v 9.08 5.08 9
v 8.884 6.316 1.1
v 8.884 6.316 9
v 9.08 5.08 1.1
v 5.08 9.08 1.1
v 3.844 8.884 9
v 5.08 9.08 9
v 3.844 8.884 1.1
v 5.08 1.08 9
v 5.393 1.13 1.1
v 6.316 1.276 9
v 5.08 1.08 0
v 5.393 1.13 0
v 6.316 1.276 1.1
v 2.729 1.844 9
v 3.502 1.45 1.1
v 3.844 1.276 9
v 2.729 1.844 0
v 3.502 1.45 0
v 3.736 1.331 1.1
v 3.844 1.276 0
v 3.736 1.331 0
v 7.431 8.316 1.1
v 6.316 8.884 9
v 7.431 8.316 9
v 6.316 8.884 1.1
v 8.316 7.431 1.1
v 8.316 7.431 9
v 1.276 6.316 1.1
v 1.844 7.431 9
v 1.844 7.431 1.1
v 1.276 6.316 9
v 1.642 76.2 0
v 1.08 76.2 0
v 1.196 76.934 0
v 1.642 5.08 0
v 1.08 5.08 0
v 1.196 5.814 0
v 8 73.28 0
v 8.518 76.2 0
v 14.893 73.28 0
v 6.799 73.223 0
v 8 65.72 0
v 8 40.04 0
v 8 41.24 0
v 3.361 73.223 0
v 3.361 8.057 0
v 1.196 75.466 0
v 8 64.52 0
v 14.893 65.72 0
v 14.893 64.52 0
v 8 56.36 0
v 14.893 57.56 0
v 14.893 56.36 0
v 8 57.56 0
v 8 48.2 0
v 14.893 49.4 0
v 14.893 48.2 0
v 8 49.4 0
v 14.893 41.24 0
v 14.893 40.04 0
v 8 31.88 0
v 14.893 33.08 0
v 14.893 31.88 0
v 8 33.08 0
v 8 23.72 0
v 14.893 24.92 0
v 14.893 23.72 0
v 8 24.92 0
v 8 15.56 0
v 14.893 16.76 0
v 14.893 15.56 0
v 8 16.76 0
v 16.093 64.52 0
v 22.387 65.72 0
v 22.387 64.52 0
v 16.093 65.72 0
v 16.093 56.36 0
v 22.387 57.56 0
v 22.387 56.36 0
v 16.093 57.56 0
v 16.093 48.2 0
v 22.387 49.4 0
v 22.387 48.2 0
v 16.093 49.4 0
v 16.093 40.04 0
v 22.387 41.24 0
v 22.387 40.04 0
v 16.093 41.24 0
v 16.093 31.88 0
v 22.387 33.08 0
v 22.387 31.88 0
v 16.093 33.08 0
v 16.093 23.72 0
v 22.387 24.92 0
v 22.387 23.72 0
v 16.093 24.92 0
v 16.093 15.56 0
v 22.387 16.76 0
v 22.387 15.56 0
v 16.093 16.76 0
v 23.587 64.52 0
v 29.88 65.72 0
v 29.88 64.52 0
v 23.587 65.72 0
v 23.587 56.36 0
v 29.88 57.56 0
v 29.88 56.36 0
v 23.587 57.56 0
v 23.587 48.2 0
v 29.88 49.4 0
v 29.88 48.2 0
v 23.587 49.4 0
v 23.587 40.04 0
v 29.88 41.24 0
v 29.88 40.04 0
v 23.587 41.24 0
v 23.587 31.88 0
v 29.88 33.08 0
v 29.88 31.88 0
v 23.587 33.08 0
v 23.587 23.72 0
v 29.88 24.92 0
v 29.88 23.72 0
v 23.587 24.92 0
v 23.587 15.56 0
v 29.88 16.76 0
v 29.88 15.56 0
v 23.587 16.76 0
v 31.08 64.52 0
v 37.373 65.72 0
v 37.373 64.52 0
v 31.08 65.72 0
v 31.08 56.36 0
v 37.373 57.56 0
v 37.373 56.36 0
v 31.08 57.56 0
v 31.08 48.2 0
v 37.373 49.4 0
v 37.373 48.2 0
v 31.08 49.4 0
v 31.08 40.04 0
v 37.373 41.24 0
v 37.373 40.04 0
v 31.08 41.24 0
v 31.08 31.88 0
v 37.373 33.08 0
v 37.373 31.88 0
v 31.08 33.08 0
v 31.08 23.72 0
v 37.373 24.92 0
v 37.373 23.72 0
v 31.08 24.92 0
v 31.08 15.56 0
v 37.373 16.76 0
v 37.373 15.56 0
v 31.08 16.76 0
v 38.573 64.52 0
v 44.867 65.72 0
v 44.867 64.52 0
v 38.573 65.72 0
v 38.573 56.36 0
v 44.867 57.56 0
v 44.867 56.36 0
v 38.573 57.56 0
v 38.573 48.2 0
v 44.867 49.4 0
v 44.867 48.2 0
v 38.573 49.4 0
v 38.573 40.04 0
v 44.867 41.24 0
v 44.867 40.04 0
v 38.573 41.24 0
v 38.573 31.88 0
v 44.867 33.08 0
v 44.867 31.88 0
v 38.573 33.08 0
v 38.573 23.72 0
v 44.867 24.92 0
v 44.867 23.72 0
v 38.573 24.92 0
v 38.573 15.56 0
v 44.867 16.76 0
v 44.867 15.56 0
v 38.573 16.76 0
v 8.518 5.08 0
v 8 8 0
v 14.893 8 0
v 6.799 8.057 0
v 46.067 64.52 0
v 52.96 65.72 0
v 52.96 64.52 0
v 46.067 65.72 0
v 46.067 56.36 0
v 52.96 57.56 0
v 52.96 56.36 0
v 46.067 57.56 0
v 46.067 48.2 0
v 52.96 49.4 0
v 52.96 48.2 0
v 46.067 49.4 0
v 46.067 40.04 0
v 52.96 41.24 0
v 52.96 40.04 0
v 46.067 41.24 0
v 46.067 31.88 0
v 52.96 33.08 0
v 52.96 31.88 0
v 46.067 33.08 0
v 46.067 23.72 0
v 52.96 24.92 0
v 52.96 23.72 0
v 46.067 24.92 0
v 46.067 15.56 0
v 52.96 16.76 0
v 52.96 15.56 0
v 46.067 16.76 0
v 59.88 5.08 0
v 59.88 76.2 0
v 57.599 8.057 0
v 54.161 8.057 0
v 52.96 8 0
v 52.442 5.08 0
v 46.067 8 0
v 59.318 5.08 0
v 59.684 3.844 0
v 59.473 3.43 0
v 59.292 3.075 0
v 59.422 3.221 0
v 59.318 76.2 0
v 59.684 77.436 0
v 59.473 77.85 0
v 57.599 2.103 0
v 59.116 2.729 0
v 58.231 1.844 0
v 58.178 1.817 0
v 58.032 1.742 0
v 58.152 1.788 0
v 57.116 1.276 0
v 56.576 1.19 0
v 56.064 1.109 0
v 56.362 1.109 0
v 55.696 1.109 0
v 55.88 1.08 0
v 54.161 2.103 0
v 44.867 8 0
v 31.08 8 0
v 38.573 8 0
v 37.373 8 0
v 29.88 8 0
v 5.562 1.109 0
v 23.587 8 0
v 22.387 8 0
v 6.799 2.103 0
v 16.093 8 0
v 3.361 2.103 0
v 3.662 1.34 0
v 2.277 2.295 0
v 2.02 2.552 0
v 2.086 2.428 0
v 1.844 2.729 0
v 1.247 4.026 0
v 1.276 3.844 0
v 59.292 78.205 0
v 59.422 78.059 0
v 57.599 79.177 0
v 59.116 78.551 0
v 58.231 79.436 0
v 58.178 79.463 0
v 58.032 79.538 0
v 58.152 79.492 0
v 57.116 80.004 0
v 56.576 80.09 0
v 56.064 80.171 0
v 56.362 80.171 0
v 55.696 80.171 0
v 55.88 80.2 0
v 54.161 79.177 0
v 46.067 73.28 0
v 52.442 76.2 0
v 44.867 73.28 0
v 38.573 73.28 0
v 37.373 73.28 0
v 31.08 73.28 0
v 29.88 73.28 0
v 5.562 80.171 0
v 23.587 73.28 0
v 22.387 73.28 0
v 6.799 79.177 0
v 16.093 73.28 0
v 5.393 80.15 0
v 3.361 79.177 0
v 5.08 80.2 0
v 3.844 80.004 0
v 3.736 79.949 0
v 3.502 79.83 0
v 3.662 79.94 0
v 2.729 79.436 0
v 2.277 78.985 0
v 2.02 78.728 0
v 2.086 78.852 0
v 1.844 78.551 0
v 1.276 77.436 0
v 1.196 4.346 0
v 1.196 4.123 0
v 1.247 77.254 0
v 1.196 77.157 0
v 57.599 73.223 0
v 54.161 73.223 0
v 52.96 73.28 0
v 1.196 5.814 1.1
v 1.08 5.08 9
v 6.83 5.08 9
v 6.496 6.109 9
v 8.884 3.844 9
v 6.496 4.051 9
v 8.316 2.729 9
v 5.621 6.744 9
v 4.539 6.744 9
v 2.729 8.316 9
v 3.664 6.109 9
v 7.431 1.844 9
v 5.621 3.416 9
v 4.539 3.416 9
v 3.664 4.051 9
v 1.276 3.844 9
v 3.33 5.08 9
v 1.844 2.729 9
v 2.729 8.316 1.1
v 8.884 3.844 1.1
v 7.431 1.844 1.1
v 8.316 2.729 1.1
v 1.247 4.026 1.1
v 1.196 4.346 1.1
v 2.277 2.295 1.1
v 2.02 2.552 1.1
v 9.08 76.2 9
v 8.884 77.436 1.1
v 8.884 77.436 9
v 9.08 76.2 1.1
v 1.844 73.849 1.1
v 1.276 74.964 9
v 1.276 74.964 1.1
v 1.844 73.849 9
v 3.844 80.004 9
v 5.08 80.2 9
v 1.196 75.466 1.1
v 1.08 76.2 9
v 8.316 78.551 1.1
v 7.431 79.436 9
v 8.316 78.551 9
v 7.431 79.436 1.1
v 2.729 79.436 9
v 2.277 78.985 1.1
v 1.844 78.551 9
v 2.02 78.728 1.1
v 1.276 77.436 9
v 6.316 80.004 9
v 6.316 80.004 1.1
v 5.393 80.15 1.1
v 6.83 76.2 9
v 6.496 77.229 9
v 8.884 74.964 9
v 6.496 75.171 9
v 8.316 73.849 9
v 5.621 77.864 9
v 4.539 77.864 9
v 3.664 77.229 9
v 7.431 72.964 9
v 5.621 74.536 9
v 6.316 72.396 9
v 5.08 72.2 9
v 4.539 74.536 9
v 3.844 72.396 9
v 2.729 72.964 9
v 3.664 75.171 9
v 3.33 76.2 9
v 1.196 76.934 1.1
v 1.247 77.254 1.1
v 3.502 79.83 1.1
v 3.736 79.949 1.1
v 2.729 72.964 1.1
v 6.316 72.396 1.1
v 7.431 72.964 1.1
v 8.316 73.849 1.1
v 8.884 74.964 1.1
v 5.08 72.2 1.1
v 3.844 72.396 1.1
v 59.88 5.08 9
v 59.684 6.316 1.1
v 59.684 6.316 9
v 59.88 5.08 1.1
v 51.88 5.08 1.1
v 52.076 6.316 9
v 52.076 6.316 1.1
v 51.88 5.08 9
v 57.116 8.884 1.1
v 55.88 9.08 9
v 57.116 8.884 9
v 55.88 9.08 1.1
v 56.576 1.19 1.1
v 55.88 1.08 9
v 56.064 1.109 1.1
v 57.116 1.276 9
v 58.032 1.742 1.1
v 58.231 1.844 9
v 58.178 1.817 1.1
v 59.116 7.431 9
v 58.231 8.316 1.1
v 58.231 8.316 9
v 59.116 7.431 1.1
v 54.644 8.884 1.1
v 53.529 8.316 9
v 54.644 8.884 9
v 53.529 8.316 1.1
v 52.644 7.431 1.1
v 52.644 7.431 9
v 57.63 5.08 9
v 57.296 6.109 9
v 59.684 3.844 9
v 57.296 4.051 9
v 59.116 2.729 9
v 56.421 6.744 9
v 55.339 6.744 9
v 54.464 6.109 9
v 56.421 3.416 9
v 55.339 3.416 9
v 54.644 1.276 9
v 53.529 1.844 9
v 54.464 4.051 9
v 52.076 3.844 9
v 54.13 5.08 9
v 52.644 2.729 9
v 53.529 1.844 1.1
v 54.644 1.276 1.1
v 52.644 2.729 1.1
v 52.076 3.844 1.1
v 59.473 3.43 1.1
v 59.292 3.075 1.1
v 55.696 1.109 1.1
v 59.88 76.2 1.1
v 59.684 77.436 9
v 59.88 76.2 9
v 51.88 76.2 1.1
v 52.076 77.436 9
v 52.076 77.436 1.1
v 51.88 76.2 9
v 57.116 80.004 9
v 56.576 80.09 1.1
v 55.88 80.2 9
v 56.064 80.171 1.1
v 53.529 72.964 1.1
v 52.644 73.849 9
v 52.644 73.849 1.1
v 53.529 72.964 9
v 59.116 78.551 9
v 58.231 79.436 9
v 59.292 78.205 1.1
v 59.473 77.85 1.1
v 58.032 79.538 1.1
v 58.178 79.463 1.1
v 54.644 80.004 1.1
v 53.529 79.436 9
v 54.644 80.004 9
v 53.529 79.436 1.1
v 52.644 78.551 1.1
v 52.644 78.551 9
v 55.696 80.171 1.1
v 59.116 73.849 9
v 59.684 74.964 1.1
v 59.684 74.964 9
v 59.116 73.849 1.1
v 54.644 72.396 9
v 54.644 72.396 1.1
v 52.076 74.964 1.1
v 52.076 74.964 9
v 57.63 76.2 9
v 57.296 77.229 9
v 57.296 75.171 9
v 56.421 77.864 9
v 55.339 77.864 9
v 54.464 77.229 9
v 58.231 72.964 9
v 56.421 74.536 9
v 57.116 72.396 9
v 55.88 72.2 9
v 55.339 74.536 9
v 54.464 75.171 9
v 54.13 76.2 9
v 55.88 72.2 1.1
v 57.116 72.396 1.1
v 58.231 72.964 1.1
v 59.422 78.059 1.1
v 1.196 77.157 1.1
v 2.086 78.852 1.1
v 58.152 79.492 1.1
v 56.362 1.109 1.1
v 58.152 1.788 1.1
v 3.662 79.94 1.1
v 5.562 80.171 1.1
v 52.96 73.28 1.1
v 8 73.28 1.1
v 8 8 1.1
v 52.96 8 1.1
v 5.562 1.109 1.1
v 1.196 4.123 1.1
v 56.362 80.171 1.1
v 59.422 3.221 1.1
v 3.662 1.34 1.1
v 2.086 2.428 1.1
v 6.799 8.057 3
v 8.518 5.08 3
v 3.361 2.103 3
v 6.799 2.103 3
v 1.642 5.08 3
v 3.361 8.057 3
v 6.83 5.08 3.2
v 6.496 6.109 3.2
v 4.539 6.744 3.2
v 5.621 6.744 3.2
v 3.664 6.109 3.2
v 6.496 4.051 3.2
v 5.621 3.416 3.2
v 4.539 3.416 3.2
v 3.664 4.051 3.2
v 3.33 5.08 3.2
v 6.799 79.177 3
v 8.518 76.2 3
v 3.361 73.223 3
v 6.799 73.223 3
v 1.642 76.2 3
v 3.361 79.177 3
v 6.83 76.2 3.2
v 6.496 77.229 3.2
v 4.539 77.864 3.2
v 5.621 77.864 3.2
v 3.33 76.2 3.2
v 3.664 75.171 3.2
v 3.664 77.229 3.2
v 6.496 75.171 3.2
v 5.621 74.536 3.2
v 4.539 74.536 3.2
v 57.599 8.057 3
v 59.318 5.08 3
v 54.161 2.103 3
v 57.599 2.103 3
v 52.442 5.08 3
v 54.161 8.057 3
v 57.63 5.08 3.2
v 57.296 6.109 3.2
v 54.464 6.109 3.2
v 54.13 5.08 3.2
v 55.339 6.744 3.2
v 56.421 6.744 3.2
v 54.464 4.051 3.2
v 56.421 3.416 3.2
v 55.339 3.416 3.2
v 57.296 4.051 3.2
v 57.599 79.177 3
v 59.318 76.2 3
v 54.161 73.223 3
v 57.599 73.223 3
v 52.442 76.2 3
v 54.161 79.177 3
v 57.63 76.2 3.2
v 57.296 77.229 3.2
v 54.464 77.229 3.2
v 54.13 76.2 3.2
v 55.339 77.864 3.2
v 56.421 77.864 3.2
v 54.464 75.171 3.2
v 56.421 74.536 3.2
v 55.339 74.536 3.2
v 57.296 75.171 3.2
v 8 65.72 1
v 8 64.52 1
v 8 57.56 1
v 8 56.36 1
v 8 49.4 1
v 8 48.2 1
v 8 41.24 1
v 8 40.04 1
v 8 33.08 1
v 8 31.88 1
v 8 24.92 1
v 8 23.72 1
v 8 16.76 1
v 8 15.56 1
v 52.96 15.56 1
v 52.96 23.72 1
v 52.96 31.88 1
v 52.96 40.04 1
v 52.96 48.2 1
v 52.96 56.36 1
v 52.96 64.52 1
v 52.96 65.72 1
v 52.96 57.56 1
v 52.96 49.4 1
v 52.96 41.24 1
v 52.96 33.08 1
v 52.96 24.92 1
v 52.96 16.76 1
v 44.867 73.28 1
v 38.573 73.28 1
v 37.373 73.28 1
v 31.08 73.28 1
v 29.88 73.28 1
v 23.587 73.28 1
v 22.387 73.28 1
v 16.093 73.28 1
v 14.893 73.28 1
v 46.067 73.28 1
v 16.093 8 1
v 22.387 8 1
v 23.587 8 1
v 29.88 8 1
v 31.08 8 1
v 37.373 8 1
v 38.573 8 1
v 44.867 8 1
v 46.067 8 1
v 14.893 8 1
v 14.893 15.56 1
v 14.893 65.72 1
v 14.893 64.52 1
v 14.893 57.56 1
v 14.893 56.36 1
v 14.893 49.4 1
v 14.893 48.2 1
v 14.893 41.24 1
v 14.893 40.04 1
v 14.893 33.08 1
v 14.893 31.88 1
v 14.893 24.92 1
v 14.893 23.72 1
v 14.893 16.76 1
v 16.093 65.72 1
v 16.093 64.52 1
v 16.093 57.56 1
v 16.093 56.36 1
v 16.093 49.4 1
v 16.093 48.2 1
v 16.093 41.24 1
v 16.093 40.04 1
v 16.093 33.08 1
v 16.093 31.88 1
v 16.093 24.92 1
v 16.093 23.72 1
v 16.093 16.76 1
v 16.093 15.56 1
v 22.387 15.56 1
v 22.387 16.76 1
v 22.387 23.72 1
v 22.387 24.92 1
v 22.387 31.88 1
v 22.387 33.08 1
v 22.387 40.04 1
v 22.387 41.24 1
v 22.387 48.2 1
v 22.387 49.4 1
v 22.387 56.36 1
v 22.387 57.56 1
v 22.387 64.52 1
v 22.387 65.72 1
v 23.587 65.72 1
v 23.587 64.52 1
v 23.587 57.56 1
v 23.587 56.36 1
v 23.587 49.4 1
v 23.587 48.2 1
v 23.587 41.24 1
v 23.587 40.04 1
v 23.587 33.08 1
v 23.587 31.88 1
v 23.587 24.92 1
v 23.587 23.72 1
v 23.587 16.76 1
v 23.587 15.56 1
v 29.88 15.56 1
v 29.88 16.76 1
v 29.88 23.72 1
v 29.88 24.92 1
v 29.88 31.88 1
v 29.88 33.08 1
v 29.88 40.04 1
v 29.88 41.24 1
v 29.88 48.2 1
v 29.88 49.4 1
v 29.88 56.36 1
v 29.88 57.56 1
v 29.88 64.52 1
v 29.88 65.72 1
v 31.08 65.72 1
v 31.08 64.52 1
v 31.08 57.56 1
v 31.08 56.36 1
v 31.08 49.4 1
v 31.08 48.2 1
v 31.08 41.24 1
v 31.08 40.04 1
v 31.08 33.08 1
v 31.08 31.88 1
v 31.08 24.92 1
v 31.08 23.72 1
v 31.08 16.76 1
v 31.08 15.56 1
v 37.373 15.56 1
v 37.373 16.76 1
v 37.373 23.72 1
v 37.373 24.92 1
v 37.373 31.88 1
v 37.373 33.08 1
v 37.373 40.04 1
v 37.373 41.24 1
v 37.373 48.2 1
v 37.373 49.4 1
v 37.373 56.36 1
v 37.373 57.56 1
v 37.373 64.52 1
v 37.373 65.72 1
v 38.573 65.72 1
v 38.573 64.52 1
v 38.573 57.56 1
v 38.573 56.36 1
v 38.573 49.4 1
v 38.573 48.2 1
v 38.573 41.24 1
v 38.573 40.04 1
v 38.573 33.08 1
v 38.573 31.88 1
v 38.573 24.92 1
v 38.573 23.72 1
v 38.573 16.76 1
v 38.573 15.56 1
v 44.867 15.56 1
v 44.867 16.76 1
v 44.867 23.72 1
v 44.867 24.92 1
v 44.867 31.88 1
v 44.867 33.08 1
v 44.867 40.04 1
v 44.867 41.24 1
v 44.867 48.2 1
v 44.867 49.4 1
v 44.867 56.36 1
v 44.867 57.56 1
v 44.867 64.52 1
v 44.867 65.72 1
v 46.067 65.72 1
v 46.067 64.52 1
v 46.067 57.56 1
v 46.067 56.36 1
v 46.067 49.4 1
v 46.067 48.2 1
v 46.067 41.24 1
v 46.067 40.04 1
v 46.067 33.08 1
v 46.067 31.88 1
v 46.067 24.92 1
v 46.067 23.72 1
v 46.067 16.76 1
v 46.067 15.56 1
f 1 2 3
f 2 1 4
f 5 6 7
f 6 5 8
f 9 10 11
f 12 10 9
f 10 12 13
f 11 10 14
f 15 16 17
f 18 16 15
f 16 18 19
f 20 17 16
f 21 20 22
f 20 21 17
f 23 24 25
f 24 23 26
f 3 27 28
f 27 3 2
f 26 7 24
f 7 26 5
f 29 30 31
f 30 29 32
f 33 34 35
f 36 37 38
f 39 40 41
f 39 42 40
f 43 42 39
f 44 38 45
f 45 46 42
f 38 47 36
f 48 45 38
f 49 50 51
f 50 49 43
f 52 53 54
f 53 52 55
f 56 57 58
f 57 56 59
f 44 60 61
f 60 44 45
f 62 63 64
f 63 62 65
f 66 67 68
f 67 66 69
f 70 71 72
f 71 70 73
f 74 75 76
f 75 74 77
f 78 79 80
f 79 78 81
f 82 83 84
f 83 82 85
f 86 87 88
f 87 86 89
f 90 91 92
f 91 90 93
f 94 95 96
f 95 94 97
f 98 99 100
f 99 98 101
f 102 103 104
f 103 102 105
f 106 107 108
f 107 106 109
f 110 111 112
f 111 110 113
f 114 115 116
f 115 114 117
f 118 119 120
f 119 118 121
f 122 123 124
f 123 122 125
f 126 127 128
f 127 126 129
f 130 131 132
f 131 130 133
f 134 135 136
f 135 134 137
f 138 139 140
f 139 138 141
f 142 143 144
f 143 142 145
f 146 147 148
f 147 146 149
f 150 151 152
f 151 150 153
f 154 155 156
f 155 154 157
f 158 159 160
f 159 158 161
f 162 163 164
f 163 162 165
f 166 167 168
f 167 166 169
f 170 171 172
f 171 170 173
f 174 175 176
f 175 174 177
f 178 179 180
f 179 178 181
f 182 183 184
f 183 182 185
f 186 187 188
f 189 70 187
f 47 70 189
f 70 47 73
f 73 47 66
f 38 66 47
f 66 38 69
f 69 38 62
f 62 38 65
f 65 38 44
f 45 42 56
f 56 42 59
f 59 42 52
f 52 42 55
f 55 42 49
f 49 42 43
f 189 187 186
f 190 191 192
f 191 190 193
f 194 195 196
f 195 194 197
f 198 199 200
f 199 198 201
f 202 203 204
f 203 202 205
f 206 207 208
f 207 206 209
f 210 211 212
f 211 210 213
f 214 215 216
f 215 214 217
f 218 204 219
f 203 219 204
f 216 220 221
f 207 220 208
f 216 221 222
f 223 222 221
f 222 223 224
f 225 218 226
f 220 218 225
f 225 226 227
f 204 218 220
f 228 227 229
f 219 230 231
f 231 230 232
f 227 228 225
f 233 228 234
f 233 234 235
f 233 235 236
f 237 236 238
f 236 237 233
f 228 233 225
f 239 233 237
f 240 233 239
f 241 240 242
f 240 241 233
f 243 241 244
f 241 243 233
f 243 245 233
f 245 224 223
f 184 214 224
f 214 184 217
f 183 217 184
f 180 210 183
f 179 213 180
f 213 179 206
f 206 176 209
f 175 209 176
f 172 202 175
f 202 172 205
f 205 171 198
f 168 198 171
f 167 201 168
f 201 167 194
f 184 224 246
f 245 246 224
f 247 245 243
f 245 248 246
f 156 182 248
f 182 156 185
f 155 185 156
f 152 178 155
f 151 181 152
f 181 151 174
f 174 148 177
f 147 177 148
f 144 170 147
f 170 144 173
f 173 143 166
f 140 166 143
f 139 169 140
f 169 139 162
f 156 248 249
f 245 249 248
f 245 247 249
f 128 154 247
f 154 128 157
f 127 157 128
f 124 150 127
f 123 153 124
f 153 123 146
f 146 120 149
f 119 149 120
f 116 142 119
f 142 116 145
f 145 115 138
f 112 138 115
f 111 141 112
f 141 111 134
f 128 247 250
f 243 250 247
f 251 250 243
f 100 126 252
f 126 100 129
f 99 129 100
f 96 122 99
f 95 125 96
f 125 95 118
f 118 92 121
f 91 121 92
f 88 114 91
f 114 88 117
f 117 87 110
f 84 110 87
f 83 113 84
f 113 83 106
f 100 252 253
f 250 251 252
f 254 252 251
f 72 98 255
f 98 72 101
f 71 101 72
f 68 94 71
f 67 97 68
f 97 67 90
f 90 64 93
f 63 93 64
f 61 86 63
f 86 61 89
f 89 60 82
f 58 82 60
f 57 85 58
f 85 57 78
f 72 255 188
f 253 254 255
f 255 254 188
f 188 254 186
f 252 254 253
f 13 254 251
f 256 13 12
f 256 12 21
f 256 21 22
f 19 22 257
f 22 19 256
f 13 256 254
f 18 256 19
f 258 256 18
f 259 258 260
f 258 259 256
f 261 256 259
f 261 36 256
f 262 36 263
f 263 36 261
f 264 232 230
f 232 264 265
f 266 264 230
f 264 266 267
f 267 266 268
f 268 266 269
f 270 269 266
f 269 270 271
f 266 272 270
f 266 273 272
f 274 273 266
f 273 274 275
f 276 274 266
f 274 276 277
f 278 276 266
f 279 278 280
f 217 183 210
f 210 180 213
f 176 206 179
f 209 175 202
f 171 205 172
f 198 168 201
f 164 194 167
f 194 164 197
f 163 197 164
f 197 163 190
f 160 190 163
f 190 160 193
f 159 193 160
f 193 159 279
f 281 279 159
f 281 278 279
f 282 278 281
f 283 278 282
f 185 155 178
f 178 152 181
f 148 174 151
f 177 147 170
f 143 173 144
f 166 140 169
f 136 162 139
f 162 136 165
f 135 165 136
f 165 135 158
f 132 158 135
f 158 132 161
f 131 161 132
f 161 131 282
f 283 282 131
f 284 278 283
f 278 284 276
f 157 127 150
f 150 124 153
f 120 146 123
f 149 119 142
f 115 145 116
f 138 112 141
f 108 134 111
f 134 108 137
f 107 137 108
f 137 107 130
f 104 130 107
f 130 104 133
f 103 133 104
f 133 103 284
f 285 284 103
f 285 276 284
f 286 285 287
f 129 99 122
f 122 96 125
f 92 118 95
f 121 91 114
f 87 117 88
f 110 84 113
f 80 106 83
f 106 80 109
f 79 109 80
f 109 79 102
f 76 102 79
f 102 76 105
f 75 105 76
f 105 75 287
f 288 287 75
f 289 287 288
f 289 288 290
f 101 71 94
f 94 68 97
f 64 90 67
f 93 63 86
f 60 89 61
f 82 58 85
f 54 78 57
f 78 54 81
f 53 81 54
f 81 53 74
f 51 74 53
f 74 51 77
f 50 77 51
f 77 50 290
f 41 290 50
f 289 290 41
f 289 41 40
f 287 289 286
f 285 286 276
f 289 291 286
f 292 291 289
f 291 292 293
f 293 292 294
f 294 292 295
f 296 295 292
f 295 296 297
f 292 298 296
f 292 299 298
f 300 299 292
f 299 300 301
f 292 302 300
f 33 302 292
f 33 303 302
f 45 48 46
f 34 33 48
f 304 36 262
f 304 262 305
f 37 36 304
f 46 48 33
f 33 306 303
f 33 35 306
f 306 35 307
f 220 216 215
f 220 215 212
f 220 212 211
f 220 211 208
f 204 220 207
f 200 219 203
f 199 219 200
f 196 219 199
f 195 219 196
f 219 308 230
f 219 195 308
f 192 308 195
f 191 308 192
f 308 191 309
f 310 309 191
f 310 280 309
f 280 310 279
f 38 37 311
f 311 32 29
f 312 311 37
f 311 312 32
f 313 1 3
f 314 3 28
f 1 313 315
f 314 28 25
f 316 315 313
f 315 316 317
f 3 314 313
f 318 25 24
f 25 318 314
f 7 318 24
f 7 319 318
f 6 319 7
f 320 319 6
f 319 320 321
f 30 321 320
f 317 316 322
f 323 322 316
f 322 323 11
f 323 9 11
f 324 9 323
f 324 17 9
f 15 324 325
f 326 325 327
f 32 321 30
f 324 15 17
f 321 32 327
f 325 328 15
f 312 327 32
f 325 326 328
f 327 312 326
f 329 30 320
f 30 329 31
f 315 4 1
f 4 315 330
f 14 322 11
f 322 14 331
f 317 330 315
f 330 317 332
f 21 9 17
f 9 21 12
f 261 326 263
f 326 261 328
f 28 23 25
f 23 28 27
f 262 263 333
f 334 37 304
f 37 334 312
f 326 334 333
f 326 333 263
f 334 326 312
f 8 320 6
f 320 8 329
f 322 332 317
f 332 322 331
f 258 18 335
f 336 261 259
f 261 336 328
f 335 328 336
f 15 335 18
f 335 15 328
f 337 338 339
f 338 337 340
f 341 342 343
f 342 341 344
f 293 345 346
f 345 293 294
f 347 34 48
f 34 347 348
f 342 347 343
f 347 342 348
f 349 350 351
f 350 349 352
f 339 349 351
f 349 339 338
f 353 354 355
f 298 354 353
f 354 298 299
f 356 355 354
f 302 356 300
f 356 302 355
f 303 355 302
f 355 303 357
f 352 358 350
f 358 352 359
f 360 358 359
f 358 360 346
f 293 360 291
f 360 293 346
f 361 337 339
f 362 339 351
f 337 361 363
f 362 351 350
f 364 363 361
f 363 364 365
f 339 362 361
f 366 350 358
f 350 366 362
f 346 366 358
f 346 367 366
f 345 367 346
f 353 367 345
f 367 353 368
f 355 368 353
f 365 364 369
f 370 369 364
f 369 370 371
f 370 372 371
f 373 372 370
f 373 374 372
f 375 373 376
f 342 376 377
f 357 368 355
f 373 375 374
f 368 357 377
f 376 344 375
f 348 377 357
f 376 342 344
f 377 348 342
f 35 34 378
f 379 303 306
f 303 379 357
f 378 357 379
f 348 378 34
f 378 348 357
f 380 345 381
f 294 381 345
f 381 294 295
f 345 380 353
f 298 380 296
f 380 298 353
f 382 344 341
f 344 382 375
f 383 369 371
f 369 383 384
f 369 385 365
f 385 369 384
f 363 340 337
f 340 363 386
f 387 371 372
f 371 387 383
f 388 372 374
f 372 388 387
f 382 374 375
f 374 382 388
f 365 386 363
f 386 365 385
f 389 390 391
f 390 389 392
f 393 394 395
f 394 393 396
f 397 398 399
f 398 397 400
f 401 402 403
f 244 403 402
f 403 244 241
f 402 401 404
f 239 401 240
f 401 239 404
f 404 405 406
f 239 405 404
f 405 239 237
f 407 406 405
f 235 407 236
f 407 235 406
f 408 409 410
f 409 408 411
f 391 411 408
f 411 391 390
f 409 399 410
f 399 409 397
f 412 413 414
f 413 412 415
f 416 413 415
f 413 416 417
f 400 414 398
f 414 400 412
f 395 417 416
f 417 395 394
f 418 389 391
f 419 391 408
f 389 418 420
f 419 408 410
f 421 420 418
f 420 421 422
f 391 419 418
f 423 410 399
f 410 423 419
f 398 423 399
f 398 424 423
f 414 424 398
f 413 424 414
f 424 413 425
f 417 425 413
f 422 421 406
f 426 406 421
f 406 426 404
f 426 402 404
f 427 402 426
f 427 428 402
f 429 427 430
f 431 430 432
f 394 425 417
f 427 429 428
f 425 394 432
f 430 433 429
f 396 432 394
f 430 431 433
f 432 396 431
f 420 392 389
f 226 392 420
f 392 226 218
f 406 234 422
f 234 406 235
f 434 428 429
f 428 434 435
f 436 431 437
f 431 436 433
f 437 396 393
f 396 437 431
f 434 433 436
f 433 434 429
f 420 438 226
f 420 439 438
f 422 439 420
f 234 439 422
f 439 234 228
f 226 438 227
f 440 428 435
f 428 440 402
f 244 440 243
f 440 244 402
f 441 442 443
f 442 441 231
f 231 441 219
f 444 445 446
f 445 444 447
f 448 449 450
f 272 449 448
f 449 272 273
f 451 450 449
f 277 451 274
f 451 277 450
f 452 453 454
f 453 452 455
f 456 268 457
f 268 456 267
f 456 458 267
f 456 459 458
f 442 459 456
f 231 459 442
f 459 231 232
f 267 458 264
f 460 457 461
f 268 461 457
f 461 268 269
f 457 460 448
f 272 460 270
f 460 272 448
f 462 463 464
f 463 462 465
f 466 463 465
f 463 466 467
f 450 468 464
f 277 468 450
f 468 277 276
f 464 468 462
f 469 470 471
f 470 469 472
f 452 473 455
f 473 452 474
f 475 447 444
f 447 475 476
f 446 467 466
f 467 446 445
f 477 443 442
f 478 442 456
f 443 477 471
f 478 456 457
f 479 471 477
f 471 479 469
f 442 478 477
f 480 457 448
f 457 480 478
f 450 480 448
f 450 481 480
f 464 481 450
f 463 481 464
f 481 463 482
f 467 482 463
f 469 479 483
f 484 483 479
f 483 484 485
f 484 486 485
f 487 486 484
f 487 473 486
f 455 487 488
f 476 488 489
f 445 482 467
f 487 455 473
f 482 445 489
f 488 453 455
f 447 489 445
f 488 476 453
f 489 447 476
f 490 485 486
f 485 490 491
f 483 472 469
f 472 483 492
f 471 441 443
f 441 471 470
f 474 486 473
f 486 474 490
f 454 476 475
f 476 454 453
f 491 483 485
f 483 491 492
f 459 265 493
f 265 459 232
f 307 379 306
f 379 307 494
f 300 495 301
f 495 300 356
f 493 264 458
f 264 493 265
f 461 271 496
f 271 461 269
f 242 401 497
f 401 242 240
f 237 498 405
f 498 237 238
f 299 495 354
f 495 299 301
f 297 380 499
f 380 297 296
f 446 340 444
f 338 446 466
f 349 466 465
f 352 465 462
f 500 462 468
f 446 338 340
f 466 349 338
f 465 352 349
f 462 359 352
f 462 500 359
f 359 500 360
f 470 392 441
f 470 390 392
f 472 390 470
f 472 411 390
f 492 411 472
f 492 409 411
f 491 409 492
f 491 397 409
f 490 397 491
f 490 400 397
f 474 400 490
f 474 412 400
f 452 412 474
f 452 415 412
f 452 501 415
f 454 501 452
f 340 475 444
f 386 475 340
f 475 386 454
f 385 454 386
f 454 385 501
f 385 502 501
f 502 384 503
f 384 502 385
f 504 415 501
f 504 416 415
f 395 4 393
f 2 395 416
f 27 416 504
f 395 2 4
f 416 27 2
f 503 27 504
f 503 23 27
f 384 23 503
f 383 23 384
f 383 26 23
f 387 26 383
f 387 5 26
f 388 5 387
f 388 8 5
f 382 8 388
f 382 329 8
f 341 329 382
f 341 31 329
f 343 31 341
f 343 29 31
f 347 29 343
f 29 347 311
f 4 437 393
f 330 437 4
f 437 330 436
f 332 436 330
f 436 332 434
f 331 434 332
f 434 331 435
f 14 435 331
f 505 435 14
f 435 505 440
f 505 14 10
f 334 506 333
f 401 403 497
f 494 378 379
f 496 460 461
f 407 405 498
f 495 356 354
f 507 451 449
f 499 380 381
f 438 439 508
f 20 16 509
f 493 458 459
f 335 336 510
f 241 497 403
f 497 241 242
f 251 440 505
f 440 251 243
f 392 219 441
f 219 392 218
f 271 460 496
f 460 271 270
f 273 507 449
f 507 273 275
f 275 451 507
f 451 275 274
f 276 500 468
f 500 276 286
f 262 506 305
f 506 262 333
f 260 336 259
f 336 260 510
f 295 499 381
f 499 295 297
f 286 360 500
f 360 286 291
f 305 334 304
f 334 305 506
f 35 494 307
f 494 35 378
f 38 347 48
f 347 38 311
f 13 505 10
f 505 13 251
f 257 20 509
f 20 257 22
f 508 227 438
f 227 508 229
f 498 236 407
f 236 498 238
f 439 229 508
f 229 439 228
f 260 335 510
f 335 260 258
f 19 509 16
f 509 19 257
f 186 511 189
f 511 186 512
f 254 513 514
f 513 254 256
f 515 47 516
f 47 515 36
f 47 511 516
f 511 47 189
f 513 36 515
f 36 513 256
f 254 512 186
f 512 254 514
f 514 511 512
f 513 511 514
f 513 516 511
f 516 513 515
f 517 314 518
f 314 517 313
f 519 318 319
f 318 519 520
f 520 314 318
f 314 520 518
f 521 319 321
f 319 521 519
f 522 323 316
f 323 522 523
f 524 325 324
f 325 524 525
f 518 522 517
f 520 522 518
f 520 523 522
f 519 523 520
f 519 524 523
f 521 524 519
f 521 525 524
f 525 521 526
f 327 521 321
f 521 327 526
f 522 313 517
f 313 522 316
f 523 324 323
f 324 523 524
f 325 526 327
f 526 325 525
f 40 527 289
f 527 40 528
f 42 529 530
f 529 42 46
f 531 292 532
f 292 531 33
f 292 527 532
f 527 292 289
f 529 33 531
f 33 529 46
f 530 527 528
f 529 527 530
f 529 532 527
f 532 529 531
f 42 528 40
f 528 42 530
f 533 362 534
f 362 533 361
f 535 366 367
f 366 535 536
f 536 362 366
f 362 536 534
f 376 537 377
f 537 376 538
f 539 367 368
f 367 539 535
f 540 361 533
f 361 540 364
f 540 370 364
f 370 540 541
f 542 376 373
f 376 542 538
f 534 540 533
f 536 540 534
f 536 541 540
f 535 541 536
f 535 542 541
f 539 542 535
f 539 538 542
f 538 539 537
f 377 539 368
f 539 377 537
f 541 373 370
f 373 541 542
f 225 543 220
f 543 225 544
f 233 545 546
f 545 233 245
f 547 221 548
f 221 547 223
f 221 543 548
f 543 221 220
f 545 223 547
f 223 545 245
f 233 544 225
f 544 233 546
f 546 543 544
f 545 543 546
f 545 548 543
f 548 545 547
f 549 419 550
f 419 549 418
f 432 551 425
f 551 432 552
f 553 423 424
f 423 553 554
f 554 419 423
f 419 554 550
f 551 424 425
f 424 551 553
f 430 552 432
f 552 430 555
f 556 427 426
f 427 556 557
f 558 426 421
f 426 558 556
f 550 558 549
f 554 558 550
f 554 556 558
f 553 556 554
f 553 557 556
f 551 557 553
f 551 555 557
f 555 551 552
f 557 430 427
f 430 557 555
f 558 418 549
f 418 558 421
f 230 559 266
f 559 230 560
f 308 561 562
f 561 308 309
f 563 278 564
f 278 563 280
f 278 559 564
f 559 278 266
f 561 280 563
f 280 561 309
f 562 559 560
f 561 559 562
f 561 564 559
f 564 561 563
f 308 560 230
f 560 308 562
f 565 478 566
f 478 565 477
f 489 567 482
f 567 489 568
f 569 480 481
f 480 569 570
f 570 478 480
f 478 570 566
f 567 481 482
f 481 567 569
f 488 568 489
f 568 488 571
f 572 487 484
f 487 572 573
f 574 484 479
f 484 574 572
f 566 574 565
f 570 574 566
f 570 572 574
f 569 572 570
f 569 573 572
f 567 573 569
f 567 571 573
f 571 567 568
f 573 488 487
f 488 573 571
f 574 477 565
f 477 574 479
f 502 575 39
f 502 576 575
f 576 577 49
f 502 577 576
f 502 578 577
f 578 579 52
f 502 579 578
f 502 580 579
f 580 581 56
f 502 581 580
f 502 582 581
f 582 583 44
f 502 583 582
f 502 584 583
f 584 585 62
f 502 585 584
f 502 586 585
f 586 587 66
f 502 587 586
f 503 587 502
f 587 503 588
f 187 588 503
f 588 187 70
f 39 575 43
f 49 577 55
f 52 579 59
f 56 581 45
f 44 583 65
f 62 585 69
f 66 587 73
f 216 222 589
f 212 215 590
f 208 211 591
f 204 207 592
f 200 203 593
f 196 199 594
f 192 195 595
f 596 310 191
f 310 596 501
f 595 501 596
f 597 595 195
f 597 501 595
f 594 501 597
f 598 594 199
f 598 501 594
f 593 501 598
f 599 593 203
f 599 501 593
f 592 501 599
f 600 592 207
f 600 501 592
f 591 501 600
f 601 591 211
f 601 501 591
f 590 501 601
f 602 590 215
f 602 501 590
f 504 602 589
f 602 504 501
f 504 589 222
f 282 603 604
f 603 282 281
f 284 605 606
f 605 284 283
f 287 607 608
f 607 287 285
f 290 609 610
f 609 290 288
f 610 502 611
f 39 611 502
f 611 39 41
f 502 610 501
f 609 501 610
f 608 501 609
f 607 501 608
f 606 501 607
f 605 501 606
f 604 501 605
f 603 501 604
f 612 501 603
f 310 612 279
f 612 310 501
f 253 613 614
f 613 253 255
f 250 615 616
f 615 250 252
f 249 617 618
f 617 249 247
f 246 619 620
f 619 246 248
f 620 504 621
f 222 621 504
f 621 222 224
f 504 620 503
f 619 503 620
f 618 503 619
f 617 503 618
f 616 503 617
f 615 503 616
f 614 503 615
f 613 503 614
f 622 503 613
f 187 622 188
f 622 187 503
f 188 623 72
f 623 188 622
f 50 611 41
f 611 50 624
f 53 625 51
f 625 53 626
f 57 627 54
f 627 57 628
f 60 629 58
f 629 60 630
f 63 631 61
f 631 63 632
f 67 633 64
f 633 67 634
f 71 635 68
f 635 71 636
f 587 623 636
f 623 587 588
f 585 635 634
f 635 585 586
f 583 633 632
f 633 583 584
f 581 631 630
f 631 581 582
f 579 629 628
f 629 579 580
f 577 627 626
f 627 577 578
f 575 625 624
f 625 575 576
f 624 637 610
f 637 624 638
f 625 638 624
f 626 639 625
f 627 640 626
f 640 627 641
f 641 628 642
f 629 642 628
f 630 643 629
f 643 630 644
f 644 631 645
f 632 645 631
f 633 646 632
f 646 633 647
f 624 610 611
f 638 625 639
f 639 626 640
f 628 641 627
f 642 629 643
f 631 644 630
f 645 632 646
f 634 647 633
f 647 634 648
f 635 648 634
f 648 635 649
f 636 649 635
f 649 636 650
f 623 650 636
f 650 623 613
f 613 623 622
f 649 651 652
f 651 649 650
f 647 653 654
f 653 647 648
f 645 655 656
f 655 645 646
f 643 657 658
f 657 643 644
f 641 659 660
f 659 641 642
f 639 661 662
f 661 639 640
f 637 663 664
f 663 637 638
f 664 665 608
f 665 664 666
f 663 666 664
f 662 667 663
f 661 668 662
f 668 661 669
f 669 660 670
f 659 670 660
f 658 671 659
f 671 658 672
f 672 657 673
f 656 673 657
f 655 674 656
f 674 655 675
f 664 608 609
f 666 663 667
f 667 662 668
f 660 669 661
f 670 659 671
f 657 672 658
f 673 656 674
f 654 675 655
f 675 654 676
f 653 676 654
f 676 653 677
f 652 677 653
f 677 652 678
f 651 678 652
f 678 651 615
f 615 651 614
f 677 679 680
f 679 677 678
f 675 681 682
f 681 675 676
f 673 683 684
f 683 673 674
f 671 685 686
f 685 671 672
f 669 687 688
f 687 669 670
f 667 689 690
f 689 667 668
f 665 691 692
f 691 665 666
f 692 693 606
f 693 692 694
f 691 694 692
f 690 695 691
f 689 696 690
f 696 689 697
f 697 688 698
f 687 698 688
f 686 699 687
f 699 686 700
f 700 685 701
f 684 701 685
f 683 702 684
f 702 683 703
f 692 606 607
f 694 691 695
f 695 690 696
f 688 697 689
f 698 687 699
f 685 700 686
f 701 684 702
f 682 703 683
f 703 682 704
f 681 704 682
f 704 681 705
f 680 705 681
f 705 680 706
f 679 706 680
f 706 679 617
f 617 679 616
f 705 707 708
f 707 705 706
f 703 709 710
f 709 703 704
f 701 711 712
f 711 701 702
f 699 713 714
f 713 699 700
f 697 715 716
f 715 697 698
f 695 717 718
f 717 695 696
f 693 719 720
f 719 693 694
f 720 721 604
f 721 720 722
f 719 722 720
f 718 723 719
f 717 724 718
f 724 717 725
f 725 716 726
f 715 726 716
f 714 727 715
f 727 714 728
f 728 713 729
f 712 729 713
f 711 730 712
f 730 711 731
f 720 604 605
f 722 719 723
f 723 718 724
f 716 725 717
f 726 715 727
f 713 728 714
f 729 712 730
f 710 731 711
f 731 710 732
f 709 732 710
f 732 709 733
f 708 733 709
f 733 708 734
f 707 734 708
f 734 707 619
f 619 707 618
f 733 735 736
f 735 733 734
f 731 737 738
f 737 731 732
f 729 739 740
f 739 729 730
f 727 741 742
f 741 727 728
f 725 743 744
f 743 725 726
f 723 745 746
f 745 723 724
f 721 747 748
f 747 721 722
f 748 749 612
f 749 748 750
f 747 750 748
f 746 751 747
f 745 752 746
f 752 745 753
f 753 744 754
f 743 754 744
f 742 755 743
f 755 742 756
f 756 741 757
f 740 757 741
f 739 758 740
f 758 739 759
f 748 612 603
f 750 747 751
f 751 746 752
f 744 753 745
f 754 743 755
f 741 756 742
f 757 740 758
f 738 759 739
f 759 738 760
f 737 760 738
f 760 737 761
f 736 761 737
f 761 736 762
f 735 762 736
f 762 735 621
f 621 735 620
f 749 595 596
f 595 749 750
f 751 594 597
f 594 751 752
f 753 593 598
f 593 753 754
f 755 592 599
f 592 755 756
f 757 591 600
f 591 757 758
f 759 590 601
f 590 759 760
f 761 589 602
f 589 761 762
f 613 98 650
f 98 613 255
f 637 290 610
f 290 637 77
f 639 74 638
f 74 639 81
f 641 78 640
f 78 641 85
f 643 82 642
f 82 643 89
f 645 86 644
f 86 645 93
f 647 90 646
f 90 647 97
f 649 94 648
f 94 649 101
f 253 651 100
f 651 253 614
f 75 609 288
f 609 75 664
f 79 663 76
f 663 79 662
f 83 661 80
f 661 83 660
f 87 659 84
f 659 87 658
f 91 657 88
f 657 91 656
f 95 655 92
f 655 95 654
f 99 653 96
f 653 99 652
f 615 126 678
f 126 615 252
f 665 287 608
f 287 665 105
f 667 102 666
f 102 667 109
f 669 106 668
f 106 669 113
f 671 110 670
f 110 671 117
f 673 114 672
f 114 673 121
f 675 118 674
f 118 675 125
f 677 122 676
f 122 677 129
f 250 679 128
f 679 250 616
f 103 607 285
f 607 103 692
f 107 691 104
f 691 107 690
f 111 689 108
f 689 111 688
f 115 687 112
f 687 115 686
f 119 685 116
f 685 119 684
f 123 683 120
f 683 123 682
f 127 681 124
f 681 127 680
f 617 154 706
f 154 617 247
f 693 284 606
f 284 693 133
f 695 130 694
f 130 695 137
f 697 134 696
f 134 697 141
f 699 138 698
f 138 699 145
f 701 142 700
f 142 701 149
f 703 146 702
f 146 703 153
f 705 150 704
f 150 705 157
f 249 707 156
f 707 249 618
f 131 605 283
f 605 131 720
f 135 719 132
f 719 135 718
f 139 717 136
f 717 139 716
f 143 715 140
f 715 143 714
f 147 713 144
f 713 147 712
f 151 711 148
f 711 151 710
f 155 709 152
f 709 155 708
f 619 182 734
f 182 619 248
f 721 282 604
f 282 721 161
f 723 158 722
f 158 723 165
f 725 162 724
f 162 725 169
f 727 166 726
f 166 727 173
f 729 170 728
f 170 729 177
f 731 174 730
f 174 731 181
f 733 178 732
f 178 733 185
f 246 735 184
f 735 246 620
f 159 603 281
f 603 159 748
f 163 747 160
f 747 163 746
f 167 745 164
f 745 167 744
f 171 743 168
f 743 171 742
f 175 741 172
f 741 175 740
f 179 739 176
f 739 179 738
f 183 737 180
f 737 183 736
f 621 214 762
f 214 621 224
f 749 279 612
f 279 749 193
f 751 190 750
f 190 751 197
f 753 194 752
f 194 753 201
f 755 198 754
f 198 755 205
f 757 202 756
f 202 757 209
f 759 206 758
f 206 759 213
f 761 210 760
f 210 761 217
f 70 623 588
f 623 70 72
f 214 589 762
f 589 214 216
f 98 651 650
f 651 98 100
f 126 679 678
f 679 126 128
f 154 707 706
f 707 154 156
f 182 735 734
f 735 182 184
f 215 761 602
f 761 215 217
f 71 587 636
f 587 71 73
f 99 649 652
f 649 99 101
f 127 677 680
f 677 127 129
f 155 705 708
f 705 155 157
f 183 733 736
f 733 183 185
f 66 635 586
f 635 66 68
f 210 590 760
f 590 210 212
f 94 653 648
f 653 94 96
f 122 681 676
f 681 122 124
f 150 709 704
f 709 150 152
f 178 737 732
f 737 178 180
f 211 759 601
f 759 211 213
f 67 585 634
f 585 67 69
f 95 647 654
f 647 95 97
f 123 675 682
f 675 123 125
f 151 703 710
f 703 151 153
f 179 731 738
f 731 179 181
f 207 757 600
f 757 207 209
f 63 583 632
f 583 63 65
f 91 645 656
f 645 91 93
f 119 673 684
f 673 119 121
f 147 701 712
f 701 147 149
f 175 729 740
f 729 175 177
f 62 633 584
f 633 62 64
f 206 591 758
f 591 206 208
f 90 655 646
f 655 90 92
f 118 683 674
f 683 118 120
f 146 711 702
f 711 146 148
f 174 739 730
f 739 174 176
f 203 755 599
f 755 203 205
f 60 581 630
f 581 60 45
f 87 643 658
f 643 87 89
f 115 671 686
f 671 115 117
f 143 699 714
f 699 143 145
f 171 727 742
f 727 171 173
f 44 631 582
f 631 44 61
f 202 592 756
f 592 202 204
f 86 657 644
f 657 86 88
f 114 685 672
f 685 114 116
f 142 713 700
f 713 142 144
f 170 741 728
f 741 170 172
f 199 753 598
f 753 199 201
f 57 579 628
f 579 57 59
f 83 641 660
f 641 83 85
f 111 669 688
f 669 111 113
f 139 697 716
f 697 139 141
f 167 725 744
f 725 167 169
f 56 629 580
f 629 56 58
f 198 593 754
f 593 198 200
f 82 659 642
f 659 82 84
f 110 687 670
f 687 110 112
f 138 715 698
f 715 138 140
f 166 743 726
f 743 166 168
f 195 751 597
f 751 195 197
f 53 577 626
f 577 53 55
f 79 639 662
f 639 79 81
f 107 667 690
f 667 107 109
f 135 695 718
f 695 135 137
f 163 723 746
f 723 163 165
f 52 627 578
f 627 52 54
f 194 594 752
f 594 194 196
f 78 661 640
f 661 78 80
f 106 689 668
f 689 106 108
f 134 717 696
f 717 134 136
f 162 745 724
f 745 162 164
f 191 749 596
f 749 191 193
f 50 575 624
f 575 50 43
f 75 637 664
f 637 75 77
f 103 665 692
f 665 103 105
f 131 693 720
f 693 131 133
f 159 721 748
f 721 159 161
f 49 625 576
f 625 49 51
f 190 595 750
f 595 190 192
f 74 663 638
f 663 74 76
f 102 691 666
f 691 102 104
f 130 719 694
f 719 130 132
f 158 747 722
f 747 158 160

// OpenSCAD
x_holes = 6;
y_holes = 8;
pedestal_height = 9;   // designed for use the MLAB standard 20mm screws.

MLAB_grid = 10.16;
thickness = 1;          // thickness of bottom belt
pile_radius = 4;        // radius of pile around screw
x_size = x_holes * MLAB_grid ;
y_size = y_holes * MLAB_grid ;
mount_hole = 3.5;
//nut_size = 6.8;  //size suitable for PLA material
nut_size = 6.7;  //size suitable for ABS material
clear = 0.175;





MLAB_grid_xoffset = MLAB_grid/2;
MLAB_grid_yoffset = MLAB_grid/2;

grid_list = [for (j = [MLAB_grid_xoffset : MLAB_grid: x_size], i = [MLAB_grid_yoffset :MLAB_grid: y_size]) 
if ((j>(x_size-10) && i>(y_size-10)) || (j<10 && i<10) || (j<10 && i>(y_size-10)) || (j>(x_size-10) && i<10) ) [j, i] ];


//------------ Safety grid parameters---------------------------

nY = 8;
nX = 6;


meshX=x_size-4*pile_radius;
meshY=y_size-4*pile_radius;

// width of solid part of grid
meshSolid=1.2;

meshSpaceX = (meshX - meshSolid*nX)/nX;
meshSpaceY = (meshY - meshSolid*nY)/nY;


difference () {
    union () {
        for (j = grid_list) {
            translate (concat(j, [0]))
                cylinder (h = pedestal_height, r = pile_radius, $fn=20);
        }

        translate ([MLAB_grid_xoffset , MLAB_grid_yoffset , 0])
            minkowski() {
                cube([x_size - 2*(MLAB_grid/2 - pile_radius) - 2*pile_radius, y_size - 2*(MLAB_grid/2 - pile_radius) - 2*pile_radius, thickness]);          // base plastics brick
                cylinder(r = pile_radius,h = 0.1);
            }
    }
    
    translate ([2*pile_radius, 2*pile_radius, 0]) // central hole in module support
        cube([x_size-4*pile_radius, y_size-4*pile_radius, 2*thickness]);          

    // MLAB grid holes
    for (j = grid_list) {
        translate (concat(j, [0]))
            cylinder (h = 3, r = (nut_size + clear)/2, $fn = 6);
        translate (concat(j, [3.2]))  // one solid layer for slicer (the holes will be pierced on demand )
            cylinder (h = pedestal_height, r = mount_hole/2, $fn = 10);
    }    


}

translate ([2*pile_radius, 2*pile_radius, 0]) // shift mesh to module center
    union()
    {
        for (i=[1:nX-1]) {
            translate([i*(meshSolid+meshSpaceX) - meshSolid/2,0,0]) cube(size=[meshSolid, meshY, thickness],center=false);
        }

        for (i=[1:nY-1]) {
            translate([0,i*(meshSolid+meshSpaceY) - meshSolid/2,0]) cube(size=[meshX, meshSolid, thickness],center=false);
        }
    }
